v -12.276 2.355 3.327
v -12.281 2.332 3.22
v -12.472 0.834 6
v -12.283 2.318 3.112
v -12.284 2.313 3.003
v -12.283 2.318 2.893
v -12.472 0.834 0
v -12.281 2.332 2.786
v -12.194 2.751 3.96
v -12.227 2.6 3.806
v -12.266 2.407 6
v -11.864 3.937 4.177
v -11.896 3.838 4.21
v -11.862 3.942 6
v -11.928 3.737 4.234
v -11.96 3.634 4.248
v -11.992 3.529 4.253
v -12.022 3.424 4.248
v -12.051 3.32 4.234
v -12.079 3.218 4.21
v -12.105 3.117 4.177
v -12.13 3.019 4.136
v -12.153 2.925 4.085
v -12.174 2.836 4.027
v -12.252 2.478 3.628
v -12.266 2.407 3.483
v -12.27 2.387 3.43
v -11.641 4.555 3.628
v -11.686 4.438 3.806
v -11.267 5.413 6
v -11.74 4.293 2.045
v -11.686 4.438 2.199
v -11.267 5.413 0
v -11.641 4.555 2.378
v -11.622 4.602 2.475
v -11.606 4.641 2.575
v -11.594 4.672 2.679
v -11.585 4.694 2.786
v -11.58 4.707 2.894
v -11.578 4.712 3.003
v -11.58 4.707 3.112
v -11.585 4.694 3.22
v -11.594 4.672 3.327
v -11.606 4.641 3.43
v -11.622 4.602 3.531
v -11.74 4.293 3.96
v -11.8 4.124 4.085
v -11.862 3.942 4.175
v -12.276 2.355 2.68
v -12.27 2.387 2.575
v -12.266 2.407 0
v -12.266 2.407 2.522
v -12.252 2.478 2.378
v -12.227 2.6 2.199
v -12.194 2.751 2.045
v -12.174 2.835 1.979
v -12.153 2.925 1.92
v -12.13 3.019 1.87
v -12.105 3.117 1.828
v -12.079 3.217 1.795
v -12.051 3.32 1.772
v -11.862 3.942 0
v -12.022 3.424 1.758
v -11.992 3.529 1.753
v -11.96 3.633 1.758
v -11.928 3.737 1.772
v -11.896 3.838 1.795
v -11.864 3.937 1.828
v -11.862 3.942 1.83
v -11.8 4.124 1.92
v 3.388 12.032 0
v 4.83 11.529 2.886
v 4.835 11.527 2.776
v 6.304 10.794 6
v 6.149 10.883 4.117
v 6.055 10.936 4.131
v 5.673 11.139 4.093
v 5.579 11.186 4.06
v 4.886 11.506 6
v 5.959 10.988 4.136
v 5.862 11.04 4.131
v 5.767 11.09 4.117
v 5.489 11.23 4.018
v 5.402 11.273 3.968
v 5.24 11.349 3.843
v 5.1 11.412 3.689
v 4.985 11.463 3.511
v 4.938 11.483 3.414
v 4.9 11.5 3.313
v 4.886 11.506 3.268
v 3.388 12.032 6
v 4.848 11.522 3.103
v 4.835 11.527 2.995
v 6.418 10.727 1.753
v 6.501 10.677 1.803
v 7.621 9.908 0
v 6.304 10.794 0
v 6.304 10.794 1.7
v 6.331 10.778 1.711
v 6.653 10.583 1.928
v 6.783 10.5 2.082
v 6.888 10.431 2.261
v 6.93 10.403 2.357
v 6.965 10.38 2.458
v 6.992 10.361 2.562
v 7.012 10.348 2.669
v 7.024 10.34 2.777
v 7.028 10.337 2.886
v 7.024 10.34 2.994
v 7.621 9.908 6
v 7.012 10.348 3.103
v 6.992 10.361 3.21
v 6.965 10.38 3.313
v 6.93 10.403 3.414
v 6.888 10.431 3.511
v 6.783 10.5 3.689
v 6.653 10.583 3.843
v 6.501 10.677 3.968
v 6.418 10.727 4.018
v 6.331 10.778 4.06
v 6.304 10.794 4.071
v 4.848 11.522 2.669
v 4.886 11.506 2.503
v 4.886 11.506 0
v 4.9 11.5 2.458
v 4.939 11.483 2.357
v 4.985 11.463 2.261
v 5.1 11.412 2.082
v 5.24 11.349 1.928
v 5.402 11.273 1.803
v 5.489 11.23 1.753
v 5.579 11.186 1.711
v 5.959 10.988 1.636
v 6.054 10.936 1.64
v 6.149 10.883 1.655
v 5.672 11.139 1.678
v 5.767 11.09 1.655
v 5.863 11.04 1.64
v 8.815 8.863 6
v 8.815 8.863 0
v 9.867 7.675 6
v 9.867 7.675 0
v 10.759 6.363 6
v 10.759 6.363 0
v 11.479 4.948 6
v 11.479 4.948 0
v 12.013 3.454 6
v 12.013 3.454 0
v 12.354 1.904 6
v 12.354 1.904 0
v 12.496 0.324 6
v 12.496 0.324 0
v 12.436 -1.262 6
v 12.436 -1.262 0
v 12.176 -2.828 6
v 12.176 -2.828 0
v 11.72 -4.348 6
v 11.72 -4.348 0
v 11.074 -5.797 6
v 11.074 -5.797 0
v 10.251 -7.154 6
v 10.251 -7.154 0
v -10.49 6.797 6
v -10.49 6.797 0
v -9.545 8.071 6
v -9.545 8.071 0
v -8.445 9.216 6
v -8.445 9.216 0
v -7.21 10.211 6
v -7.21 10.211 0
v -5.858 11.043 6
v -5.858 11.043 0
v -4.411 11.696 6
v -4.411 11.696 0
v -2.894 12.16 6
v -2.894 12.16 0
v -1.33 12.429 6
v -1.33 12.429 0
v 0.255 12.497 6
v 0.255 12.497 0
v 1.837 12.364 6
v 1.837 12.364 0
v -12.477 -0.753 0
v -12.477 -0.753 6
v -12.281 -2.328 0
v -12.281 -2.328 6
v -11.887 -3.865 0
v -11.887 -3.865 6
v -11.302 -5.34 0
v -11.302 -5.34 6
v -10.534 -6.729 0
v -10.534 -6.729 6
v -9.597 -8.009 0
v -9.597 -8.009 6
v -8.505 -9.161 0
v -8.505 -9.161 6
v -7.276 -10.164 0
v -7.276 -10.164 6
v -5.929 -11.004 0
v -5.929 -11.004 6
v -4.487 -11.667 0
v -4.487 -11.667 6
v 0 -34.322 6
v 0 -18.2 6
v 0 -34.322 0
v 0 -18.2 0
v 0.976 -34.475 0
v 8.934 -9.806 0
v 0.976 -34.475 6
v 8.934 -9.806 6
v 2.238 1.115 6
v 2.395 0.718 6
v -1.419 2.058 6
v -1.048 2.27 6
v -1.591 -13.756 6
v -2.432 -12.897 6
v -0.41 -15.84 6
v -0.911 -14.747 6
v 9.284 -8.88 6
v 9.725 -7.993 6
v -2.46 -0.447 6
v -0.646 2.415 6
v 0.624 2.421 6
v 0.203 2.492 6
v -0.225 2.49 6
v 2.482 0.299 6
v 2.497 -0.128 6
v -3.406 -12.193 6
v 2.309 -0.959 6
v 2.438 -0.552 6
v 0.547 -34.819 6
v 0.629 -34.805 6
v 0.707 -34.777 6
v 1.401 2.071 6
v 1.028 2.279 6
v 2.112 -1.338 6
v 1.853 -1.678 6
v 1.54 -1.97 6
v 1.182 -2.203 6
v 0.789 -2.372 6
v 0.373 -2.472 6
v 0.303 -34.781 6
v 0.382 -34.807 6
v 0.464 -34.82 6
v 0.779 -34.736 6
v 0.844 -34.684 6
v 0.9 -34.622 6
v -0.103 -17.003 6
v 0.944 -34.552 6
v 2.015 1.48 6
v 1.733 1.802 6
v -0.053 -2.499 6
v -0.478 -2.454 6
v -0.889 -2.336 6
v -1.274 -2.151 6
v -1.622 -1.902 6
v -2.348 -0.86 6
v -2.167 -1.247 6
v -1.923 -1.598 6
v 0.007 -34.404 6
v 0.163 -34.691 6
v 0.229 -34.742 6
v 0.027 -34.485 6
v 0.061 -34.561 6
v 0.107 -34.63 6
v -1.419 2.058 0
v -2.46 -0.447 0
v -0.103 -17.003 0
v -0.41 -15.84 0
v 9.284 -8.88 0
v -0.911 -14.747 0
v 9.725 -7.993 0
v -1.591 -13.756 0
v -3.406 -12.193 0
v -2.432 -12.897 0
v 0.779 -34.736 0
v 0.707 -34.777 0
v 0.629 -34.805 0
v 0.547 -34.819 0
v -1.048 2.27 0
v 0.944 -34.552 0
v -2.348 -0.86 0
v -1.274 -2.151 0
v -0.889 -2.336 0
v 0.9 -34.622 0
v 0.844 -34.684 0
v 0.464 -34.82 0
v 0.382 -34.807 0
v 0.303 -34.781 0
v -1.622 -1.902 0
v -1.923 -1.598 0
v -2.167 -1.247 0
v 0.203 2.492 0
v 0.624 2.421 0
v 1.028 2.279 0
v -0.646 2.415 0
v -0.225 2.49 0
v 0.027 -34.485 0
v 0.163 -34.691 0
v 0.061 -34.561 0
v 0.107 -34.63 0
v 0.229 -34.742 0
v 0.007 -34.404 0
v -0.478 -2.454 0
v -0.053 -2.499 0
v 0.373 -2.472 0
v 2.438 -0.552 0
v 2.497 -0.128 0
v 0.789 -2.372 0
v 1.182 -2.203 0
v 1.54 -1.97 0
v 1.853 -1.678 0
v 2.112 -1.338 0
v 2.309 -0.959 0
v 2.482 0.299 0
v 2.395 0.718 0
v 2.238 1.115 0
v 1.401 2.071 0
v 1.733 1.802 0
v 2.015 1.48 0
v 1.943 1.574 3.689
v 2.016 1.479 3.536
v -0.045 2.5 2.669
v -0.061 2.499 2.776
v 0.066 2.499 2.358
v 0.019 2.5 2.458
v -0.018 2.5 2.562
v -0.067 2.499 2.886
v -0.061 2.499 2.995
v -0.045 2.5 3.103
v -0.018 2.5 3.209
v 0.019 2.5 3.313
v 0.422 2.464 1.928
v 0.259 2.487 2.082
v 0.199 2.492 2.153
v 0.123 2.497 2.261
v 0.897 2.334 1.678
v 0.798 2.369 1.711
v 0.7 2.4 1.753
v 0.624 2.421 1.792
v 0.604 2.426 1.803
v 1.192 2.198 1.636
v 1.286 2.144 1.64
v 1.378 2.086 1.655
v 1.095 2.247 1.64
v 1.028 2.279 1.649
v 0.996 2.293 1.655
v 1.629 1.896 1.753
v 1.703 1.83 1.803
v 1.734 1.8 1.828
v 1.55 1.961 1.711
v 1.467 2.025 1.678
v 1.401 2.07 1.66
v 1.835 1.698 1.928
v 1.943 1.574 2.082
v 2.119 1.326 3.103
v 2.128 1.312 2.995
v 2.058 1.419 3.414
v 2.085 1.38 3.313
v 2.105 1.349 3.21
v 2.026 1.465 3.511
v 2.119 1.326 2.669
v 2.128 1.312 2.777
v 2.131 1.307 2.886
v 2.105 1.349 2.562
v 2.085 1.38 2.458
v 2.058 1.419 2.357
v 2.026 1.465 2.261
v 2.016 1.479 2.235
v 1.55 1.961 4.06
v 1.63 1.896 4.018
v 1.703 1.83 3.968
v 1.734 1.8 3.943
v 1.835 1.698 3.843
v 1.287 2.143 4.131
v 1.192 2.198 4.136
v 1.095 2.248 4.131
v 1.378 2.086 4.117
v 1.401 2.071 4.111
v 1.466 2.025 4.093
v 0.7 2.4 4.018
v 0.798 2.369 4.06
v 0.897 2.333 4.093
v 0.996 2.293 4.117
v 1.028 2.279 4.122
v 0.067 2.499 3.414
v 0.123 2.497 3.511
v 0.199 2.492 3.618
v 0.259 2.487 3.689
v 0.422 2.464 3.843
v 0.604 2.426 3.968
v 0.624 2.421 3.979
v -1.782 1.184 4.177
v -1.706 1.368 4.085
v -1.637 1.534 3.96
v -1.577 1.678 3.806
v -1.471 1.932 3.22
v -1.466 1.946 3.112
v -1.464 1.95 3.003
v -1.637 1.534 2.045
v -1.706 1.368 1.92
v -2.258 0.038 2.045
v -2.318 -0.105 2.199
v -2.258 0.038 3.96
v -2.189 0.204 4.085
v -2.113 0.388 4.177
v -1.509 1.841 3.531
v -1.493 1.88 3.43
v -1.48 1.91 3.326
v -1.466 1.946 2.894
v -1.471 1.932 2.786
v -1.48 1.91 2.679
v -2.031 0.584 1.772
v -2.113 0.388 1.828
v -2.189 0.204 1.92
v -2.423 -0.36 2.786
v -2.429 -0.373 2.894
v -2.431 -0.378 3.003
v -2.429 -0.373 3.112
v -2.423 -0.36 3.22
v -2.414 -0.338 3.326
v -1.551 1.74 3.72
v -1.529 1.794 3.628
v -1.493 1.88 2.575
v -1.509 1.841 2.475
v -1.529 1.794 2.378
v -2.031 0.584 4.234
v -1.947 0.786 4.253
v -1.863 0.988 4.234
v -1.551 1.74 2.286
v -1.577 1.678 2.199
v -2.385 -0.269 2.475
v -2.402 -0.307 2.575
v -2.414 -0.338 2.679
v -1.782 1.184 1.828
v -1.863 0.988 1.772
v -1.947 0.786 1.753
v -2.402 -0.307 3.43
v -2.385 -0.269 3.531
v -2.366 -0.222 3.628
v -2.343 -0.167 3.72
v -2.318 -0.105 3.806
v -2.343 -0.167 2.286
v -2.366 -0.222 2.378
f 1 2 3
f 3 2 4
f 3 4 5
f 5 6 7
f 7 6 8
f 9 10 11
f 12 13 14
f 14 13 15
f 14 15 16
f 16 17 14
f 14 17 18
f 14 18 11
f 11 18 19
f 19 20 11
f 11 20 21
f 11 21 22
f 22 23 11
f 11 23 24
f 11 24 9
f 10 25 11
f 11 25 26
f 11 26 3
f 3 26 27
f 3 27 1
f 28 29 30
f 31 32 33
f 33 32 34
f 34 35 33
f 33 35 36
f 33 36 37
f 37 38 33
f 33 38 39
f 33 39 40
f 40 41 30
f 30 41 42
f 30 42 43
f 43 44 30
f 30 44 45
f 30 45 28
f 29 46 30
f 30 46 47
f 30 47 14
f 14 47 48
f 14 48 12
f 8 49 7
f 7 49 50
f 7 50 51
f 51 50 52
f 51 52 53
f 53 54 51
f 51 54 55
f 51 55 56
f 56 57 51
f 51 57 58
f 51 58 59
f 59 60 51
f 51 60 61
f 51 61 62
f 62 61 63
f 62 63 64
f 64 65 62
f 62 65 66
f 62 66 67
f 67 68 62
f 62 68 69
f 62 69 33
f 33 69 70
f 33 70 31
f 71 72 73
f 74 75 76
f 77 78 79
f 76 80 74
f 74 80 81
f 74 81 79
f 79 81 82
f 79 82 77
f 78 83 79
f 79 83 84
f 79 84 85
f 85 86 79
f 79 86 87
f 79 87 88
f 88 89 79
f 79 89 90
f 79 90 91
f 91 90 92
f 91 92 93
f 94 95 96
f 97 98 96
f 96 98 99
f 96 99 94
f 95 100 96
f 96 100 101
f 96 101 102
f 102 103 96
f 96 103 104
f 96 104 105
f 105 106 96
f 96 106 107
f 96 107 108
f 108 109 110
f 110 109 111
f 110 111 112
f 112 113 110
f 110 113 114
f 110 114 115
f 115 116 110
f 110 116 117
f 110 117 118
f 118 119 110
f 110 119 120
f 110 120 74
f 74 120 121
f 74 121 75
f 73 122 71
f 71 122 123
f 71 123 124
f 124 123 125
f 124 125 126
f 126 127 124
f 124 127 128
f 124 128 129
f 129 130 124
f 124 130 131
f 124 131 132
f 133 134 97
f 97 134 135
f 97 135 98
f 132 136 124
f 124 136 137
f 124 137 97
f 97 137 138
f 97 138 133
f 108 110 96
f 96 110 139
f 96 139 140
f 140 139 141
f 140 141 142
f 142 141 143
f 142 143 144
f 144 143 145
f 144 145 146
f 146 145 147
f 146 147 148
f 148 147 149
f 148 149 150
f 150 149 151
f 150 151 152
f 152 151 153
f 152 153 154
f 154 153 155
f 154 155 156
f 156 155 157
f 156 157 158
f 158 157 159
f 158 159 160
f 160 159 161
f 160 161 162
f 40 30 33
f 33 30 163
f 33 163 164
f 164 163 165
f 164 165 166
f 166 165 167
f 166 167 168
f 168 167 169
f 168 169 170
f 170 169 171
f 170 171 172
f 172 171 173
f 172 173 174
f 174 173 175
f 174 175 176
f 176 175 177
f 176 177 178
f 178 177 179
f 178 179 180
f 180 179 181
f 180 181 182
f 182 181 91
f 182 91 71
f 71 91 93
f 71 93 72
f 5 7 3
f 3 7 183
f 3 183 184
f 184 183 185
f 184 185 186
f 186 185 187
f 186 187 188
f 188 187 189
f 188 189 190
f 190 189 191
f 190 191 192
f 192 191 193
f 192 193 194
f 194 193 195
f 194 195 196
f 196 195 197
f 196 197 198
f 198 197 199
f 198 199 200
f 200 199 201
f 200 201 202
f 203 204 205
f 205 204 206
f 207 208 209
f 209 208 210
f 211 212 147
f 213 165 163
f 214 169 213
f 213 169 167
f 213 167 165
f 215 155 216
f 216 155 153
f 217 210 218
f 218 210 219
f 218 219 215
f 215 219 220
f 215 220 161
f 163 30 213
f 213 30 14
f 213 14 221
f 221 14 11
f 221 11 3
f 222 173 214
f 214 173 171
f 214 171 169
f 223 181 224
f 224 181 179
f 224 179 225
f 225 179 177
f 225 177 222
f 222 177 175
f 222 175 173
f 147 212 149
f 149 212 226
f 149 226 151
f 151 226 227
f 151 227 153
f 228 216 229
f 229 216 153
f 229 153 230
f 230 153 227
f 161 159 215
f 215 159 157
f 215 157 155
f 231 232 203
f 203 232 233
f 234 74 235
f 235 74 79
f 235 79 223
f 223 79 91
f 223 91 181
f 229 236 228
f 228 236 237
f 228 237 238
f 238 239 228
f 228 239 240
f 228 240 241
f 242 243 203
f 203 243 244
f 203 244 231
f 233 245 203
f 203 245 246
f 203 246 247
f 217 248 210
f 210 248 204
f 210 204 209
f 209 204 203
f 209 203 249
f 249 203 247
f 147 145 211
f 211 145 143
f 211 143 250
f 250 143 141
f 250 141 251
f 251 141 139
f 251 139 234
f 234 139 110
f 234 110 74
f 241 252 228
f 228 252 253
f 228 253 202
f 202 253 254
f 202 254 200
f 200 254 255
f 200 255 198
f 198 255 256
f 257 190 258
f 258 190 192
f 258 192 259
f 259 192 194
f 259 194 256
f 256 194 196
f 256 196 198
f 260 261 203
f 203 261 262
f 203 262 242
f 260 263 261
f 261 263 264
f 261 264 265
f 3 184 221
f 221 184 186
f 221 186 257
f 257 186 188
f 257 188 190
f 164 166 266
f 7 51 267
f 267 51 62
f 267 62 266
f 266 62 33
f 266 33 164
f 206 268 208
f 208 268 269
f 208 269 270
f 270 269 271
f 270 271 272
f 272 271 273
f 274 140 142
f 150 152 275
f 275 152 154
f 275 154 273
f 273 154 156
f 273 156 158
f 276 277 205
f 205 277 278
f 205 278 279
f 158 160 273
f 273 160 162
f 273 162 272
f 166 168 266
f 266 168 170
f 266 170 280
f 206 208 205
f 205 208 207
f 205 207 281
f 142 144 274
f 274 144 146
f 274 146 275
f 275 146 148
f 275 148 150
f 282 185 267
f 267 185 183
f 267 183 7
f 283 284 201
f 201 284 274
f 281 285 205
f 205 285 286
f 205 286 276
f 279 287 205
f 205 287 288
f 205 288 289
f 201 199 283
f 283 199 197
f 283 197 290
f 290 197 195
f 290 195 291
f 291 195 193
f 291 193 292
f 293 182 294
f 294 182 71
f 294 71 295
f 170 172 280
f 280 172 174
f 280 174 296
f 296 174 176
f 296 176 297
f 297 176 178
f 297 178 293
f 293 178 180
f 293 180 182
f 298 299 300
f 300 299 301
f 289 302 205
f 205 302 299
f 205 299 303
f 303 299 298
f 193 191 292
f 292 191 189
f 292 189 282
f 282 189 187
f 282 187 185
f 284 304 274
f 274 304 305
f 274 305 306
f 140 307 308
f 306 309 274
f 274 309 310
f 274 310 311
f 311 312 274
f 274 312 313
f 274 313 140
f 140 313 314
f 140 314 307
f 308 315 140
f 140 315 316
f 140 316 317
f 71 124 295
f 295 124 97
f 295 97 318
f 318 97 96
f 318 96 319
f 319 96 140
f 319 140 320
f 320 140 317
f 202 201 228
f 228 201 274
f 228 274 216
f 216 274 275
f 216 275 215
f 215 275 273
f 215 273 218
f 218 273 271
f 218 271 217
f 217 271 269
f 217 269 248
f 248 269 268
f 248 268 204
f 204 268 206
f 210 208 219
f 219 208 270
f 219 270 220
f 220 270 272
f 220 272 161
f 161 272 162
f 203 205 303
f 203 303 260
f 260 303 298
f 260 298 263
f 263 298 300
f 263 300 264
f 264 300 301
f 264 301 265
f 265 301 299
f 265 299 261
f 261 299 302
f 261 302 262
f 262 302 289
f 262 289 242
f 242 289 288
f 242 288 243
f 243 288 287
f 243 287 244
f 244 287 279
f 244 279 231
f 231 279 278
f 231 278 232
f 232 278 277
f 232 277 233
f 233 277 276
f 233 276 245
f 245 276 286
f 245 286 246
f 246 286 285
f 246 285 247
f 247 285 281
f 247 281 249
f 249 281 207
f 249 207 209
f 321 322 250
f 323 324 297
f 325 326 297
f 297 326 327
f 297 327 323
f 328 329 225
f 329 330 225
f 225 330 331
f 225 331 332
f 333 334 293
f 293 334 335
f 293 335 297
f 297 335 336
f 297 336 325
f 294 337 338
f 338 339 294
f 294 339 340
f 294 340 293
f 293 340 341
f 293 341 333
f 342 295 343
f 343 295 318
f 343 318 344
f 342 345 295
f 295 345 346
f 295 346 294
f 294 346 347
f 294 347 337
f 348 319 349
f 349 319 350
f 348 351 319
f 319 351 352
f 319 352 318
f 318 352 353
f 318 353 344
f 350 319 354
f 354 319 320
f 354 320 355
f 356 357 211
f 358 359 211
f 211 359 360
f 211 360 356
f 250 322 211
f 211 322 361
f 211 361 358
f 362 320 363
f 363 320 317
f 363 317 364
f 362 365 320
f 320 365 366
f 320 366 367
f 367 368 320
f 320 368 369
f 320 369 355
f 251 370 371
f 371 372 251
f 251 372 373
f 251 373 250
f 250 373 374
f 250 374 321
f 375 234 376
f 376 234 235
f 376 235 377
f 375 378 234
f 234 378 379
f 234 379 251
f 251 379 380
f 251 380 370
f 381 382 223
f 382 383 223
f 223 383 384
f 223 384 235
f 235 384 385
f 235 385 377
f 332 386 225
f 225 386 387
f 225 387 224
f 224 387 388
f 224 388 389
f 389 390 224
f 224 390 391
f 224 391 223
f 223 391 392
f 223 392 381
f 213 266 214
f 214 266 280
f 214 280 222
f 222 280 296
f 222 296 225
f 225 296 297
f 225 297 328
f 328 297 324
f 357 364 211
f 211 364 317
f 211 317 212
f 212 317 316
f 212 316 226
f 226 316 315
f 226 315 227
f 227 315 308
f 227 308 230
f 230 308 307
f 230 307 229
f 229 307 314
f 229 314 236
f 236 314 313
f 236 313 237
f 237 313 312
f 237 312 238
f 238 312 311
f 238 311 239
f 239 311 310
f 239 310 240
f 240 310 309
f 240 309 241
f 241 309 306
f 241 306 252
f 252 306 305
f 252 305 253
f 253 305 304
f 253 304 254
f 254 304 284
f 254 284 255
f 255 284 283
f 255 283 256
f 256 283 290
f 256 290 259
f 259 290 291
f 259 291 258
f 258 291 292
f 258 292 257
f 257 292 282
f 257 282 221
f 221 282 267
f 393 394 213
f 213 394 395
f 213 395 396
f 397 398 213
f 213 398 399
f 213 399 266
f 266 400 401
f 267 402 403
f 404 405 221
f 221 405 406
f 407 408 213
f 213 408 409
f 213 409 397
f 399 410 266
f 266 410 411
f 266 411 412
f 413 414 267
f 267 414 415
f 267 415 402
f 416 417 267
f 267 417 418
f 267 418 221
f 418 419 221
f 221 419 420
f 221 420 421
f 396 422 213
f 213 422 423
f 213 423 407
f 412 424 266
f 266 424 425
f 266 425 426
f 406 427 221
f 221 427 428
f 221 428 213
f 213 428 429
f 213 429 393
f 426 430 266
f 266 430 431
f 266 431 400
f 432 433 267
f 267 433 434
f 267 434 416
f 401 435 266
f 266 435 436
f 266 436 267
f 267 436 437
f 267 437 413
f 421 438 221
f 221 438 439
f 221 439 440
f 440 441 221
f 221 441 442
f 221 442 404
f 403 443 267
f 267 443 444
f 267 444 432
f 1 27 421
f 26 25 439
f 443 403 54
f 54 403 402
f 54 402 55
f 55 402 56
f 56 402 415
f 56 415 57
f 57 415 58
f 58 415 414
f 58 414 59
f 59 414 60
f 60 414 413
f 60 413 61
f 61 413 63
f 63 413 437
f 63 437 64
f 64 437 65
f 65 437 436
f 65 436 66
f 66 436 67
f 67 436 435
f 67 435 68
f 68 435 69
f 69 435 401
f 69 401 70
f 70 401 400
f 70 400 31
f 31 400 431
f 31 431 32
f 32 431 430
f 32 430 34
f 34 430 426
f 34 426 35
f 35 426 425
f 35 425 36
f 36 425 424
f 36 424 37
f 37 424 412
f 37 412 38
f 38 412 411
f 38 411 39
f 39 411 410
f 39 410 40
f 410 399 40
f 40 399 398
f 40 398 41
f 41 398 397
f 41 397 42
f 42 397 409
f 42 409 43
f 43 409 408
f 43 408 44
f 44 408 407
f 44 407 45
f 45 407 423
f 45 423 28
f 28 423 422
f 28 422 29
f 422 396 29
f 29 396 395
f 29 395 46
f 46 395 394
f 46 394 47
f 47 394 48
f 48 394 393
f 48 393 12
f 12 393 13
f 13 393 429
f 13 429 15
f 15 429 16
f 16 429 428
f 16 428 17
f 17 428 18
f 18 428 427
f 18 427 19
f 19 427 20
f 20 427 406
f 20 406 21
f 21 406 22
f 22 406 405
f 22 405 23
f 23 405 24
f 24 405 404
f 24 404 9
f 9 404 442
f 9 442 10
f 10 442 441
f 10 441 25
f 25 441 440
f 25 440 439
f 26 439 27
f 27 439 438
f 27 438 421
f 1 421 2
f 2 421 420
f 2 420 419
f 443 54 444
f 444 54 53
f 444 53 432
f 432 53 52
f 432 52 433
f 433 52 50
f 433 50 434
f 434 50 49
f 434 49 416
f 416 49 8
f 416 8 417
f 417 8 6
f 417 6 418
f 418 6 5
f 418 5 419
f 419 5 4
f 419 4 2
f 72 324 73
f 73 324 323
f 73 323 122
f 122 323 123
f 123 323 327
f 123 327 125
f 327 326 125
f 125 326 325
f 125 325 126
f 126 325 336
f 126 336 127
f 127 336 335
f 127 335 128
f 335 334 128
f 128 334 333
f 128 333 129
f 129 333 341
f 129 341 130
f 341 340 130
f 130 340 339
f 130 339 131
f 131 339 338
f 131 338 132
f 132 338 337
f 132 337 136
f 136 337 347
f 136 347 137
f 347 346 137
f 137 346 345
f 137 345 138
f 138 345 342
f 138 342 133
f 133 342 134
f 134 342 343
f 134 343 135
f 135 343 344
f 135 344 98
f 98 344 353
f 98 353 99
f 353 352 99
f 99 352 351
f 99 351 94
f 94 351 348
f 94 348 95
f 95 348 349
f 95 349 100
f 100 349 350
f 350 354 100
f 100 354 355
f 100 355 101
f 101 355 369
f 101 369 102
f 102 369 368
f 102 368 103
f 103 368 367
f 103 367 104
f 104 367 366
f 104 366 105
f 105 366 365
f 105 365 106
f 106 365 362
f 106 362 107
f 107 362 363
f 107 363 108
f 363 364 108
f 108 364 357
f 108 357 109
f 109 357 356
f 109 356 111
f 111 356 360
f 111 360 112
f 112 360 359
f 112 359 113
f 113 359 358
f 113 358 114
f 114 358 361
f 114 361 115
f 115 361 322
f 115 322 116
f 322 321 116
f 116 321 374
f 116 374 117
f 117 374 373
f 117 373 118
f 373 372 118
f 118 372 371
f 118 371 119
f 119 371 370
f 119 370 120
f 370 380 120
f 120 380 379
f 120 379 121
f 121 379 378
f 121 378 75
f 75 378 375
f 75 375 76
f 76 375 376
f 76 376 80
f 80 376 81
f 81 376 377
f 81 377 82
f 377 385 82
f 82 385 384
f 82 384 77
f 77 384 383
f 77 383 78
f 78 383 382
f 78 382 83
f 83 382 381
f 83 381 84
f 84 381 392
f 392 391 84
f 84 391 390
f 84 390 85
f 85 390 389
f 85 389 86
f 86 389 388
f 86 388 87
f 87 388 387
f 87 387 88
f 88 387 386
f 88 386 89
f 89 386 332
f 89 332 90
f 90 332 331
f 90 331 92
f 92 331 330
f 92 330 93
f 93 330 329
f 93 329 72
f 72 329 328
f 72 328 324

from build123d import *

# Parameters (mm, degrees)
EXTRUDE_1_DEPTH     = 6
FILLET_1_R          = 7
FILLET_2_R          = 10
FILLET_5_R          = 0.5
CUT_EXTRUDE_1_REACH = 39.481
M3X0_5_10_REACH     = 47.736
M3X0_5_10_BORE_R    = 1.25
M3X0_5_9_REACH      = 51.752
M3X0_5_9_BORE_R     = 1.25


with BuildPart() as part:
    # ｽｹｯﾁ1 → ﾎﾞｽ - 押し出し1 (new body)
    with BuildSketch(Plane.XY):
        with BuildLine():
            Line((0, -12.5), (0, -37.5))
            Line((0, -37.5), (9.46282016, -8.167315019))
            ThreePointArc((9.46282016, -8.167315019), (-5.203775661, 11.365329686), (0, -12.5))
        make_face()
    extrude(amount=EXTRUDE_1_DEPTH)

    # ﾌｨﾚｯﾄ1
    fillet_1_edges = [part.edges().sort_by_distance(p)[0] for p in [
        (0, -12.5, 3),
    ]]
    fillet(fillet_1_edges, radius=FILLET_1_R)

    # ﾌｨﾚｯﾄ2
    fillet_2_edges = [part.edges().sort_by_distance(p)[0] for p in [
        (9.46282016, -8.167315019, 3),
    ]]
    fillet(fillet_2_edges, radius=FILLET_2_R)

    # ﾌｨﾚｯﾄ5
    fillet_5_edges = [part.edges().sort_by_distance(p)[0] for p in [
        (0, -37.5, 3),
    ]]
    fillet(fillet_5_edges, radius=FILLET_5_R)

    # ｽｹｯﾁ2 → ｶｯﾄ - 押し出し1 (cut, up to next)
    with BuildSketch(Plane(origin=(0, 0, 0), x_dir=(-1, 0, 0), z_dir=(0, 0, -1)), mode=Mode.PRIVATE) as cut_extrude_1_sk1:
        with BuildLine():
            Line((1.419037816, 2.058235088), (2.459682561, -0.447170771))
            ThreePointArc((2.459682561, -0.447170771), (-2.308762129, -0.958966855), (1.419037816, 2.058235088))
        make_face()
    cut_extrude_1_tool1 = extrude(cut_extrude_1_sk1.sketch, amount=-CUT_EXTRUDE_1_REACH, mode=Mode.PRIVATE) & part.part
    add(cut_extrude_1_tool1.solids().sort_by_distance((0.081308, -0.033772, 0))[0], mode=Mode.SUBTRACT)

    # M3x0.5 ねじ穴10 bore → M3x0.5 ねじ穴10 (cut, up to next)
    with BuildSketch(Plane(origin=(-12.058562703, 3.292577338, 6), x_dir=(0, 0, 1), z_dir=(-0.9646850162772109, 0.2634061870386444, 0)), mode=Mode.PRIVATE) as m3x0_5_10_sk1:
        with Locations((-2.997210871, 0.245482714)):
            Circle(M3X0_5_10_BORE_R)
    m3x0_5_10_tool1 = extrude(m3x0_5_10_sk1.sketch, amount=-M3X0_5_10_REACH, mode=Mode.PRIVATE) & part.part
    add(m3x0_5_10_tool1.solids().sort_by_distance((-11.993901, 3.529391, 3.002789))[0], mode=Mode.SUBTRACT)

    # M3x0.5 ねじ穴9 bore → M3x0.5 ねじ穴9 (cut, up to next)
    with BuildSketch(Plane(origin=(5.958781535, 10.988308451, 0), x_dir=(0.8790646760735905, -0.47670252283749615, 0), z_dir=(0.4767025228374961, 0.8790646760735904, 0)), mode=Mode.PRIVATE) as m3x0_5_9_sk1:
        with Locations((0, -2.885627833)):
            Circle(M3X0_5_9_BORE_R)
    m3x0_5_9_tool1 = extrude(m3x0_5_9_sk1.sketch, amount=-M3X0_5_9_REACH, mode=Mode.PRIVATE) & part.part
    add(m3x0_5_9_tool1.solids().sort_by_distance((5.958782, 10.988308, 2.885628))[0], mode=Mode.SUBTRACT)


solid = part.part
